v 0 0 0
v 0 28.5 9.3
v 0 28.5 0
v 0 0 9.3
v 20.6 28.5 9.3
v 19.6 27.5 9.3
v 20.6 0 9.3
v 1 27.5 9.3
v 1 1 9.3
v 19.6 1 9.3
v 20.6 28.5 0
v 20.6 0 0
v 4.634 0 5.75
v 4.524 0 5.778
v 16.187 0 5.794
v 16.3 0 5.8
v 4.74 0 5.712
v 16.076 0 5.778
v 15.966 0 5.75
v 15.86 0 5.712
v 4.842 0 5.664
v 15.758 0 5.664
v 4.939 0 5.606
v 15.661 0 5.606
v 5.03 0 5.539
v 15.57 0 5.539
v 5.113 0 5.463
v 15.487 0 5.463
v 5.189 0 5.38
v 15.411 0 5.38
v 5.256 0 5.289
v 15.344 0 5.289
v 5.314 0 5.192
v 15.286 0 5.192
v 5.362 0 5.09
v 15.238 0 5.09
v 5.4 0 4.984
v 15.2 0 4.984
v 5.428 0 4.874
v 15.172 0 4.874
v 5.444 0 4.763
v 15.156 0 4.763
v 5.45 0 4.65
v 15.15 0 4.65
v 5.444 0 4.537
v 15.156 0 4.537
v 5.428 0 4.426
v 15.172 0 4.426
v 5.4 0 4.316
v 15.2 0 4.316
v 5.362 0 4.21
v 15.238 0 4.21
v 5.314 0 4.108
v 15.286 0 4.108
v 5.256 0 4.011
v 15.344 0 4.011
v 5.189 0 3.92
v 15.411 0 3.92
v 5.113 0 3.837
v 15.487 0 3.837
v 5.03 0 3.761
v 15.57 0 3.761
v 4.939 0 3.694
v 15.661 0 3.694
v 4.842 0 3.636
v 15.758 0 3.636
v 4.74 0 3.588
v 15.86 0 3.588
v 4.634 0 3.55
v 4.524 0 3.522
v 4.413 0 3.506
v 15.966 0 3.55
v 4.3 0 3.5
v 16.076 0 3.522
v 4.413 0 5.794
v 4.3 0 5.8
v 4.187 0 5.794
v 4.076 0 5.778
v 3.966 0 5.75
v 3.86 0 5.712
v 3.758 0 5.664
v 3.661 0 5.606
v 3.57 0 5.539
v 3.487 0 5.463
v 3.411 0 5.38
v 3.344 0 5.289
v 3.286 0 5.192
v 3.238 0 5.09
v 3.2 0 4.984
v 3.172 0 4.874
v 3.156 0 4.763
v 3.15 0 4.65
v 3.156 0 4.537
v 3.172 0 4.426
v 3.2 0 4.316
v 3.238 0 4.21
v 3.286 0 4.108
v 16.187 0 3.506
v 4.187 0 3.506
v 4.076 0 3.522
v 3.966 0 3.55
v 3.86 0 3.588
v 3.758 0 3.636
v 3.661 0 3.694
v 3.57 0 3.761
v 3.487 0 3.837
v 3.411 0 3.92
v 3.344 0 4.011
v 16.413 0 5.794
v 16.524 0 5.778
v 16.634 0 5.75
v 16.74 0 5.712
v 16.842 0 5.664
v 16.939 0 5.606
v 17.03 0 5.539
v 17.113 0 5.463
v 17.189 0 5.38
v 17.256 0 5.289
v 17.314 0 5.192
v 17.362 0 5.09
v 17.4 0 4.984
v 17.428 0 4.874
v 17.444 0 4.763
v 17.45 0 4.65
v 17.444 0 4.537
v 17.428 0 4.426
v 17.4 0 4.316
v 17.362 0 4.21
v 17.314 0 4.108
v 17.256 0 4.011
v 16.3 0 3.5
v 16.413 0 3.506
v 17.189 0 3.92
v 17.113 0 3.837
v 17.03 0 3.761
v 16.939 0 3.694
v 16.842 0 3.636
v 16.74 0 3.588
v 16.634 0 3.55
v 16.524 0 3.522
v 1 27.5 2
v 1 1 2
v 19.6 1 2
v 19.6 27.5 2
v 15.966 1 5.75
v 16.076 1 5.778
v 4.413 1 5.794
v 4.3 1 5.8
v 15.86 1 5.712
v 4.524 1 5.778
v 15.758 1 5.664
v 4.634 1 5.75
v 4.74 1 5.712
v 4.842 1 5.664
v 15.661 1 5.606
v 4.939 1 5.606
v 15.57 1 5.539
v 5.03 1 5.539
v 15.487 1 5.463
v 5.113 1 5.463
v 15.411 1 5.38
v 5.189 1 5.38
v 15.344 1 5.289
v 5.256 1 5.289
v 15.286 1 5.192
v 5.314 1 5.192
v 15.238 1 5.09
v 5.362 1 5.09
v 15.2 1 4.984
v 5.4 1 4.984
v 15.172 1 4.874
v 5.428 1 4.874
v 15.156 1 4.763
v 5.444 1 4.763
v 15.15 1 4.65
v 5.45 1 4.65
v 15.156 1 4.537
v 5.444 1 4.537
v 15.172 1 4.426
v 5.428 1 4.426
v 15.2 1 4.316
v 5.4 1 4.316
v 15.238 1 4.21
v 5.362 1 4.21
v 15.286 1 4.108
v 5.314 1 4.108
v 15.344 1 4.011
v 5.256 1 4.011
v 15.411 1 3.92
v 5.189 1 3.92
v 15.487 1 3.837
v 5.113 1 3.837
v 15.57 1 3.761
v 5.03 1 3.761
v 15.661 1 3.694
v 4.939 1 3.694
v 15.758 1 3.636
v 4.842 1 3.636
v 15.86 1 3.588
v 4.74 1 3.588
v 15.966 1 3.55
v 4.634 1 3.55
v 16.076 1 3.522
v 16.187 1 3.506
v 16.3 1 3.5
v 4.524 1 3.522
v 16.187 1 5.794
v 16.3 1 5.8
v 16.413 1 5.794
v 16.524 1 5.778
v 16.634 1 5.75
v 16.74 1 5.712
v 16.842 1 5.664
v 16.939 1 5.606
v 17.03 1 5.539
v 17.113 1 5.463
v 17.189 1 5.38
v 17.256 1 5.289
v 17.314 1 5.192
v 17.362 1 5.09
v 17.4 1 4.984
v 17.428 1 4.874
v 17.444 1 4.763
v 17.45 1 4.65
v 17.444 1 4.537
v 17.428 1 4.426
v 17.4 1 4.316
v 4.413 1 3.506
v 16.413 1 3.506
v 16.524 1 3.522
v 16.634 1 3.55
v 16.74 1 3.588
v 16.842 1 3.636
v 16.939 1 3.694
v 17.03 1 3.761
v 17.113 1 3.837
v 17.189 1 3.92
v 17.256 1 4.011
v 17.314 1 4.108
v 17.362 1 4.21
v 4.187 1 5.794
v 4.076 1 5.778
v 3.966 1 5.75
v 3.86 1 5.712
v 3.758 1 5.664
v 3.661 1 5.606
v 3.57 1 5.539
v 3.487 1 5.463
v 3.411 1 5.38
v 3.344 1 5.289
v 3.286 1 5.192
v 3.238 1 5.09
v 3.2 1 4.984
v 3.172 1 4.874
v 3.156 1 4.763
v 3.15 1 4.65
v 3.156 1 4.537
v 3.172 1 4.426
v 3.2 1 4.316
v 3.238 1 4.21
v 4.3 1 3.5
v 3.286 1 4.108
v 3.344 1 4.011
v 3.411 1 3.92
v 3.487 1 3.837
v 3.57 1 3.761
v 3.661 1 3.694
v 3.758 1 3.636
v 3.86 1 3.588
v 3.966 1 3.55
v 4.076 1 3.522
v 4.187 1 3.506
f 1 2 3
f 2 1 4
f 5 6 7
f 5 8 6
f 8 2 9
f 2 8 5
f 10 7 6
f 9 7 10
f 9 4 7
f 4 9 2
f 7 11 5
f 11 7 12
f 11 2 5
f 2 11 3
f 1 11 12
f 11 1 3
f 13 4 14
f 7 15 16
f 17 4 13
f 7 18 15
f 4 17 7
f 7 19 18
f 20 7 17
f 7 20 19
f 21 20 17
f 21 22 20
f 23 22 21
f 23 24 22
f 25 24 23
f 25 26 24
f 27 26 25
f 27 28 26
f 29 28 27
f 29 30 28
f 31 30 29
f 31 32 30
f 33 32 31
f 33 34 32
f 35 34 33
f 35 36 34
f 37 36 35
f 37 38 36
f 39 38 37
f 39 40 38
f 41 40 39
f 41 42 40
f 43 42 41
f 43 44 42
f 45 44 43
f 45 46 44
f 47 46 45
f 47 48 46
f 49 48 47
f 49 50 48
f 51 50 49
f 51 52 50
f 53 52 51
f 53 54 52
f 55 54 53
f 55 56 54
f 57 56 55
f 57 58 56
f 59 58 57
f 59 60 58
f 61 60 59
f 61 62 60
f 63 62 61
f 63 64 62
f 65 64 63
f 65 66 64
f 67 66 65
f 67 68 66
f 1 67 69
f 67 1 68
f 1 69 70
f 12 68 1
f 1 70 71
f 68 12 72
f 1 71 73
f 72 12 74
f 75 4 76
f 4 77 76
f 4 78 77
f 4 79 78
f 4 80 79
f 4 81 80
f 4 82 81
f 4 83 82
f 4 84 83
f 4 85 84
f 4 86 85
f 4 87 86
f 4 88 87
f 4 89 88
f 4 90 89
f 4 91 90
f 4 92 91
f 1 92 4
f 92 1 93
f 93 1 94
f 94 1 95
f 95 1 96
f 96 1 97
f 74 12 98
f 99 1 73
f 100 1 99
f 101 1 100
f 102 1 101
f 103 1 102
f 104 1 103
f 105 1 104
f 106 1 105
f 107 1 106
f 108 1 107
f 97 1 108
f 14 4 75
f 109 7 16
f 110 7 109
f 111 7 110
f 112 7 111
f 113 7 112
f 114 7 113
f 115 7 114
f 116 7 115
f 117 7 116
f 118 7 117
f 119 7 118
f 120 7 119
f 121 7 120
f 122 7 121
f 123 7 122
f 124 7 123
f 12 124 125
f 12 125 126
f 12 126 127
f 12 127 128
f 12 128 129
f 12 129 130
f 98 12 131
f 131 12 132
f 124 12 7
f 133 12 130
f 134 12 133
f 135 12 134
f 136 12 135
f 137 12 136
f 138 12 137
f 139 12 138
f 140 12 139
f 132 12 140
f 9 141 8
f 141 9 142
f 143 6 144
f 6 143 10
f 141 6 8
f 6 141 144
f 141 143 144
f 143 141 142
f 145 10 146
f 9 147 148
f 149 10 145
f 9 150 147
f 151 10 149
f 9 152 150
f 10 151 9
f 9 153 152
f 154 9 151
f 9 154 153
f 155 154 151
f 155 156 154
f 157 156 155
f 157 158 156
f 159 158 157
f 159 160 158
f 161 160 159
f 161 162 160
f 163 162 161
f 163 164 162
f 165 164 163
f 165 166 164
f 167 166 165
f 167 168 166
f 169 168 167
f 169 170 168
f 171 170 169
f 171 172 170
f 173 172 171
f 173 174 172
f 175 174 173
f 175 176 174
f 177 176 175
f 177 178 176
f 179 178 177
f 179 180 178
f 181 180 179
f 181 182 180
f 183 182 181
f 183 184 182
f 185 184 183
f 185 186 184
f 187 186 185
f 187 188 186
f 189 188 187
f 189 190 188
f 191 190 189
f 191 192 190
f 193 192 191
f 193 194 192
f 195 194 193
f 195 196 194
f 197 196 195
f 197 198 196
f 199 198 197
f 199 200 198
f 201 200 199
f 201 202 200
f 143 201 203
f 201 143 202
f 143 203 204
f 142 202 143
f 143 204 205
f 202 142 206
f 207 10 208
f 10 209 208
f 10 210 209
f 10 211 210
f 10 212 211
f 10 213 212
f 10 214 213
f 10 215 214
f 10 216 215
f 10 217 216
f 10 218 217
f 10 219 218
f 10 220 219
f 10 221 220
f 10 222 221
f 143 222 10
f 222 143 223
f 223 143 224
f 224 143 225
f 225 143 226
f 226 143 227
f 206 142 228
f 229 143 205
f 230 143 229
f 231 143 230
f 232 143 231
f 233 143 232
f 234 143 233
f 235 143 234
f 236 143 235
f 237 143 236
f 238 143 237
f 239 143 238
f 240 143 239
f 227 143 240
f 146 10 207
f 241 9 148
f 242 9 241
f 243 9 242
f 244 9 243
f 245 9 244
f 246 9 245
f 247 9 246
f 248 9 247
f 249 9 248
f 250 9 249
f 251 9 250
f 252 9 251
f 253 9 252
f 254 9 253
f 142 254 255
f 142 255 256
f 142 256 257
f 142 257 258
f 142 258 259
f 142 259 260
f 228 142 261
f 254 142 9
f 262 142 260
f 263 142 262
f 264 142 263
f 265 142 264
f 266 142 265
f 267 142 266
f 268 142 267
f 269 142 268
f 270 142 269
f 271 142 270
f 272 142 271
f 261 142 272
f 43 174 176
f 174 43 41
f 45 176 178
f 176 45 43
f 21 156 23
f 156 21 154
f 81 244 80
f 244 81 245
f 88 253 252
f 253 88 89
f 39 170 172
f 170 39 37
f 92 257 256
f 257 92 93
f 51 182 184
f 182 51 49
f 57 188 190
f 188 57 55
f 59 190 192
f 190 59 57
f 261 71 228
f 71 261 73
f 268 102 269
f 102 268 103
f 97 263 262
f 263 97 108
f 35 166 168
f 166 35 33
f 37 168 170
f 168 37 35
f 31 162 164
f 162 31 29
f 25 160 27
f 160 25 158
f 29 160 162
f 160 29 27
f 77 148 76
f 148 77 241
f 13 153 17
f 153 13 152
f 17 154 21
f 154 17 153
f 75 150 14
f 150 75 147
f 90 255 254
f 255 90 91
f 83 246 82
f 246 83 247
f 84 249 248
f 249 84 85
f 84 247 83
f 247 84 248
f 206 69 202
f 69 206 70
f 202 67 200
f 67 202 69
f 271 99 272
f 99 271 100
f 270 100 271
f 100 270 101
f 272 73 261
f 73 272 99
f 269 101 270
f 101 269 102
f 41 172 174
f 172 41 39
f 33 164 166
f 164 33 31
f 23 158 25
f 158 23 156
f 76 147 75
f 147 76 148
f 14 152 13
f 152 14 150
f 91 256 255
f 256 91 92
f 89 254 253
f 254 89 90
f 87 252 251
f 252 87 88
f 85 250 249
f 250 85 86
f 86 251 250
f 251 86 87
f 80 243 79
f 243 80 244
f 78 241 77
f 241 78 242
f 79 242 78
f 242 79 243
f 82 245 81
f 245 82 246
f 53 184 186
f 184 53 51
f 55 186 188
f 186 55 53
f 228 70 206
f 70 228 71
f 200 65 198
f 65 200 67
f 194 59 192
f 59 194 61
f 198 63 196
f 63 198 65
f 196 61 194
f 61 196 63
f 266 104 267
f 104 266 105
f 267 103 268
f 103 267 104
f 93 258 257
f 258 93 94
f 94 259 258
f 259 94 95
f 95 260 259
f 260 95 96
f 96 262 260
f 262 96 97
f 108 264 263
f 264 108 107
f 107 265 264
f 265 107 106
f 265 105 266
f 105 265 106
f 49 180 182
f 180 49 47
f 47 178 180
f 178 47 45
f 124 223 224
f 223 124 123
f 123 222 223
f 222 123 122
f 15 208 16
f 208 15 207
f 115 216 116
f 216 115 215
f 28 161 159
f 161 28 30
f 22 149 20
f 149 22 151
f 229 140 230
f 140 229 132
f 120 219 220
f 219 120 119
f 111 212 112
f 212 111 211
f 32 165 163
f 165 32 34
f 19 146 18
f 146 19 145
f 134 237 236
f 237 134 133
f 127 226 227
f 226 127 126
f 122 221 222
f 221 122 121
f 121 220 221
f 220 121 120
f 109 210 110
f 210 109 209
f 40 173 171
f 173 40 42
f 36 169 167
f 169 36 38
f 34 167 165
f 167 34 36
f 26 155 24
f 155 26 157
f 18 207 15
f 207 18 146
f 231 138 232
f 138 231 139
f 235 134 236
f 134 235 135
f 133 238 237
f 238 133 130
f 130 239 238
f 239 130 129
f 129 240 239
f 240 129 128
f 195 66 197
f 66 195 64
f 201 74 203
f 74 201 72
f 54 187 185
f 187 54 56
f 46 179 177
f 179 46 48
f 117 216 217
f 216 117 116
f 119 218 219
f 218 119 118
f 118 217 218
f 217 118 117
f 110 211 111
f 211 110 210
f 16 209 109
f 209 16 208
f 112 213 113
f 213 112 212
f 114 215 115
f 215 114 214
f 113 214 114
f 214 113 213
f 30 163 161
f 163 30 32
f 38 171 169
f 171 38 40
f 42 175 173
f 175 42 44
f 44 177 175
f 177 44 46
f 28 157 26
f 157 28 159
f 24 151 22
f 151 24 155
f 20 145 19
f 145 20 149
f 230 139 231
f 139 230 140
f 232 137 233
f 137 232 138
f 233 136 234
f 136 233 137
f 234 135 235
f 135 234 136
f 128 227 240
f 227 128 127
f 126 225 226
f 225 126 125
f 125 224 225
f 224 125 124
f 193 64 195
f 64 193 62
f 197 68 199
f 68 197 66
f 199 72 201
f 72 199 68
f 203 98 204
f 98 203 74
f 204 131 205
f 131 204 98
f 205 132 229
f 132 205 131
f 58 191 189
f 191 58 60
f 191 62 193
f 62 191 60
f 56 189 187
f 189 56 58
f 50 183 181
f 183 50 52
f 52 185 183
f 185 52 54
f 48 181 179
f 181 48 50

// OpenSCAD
// Holder for FT 243 quartz crytsal
//
// Dimensions are in mm.

$fn=64;

// Thickness of walls
thickness = 2.0;

// Width
width = 20.6;

// Depth
depth = 28.5;

// Height
height = 9.3;

difference() {
    
difference() { 
  // Outside
  cube([width, depth, height], false);
  // Inside
  translate([thickness / 2, thickness / 2, thickness]) {
    cube([width-thickness, depth-thickness, height-thickness], false);
  }
}

// Holes for pins
diameter = 2.3; // Pin diameter
spacing = 12.0; // Spacing between pins

translate([(width - spacing)/2, 5.0, height/2])
  rotate([90, 0, 0])
    cylinder(10.0, diameter/2, diameter/2, false);

translate([20.6 - (20.6 - spacing)/2, 5.0, 9.3 / 2])
  rotate([90, 0, 0])
    cylinder(10.0, diameter / 2, diameter / 2, false);

}
